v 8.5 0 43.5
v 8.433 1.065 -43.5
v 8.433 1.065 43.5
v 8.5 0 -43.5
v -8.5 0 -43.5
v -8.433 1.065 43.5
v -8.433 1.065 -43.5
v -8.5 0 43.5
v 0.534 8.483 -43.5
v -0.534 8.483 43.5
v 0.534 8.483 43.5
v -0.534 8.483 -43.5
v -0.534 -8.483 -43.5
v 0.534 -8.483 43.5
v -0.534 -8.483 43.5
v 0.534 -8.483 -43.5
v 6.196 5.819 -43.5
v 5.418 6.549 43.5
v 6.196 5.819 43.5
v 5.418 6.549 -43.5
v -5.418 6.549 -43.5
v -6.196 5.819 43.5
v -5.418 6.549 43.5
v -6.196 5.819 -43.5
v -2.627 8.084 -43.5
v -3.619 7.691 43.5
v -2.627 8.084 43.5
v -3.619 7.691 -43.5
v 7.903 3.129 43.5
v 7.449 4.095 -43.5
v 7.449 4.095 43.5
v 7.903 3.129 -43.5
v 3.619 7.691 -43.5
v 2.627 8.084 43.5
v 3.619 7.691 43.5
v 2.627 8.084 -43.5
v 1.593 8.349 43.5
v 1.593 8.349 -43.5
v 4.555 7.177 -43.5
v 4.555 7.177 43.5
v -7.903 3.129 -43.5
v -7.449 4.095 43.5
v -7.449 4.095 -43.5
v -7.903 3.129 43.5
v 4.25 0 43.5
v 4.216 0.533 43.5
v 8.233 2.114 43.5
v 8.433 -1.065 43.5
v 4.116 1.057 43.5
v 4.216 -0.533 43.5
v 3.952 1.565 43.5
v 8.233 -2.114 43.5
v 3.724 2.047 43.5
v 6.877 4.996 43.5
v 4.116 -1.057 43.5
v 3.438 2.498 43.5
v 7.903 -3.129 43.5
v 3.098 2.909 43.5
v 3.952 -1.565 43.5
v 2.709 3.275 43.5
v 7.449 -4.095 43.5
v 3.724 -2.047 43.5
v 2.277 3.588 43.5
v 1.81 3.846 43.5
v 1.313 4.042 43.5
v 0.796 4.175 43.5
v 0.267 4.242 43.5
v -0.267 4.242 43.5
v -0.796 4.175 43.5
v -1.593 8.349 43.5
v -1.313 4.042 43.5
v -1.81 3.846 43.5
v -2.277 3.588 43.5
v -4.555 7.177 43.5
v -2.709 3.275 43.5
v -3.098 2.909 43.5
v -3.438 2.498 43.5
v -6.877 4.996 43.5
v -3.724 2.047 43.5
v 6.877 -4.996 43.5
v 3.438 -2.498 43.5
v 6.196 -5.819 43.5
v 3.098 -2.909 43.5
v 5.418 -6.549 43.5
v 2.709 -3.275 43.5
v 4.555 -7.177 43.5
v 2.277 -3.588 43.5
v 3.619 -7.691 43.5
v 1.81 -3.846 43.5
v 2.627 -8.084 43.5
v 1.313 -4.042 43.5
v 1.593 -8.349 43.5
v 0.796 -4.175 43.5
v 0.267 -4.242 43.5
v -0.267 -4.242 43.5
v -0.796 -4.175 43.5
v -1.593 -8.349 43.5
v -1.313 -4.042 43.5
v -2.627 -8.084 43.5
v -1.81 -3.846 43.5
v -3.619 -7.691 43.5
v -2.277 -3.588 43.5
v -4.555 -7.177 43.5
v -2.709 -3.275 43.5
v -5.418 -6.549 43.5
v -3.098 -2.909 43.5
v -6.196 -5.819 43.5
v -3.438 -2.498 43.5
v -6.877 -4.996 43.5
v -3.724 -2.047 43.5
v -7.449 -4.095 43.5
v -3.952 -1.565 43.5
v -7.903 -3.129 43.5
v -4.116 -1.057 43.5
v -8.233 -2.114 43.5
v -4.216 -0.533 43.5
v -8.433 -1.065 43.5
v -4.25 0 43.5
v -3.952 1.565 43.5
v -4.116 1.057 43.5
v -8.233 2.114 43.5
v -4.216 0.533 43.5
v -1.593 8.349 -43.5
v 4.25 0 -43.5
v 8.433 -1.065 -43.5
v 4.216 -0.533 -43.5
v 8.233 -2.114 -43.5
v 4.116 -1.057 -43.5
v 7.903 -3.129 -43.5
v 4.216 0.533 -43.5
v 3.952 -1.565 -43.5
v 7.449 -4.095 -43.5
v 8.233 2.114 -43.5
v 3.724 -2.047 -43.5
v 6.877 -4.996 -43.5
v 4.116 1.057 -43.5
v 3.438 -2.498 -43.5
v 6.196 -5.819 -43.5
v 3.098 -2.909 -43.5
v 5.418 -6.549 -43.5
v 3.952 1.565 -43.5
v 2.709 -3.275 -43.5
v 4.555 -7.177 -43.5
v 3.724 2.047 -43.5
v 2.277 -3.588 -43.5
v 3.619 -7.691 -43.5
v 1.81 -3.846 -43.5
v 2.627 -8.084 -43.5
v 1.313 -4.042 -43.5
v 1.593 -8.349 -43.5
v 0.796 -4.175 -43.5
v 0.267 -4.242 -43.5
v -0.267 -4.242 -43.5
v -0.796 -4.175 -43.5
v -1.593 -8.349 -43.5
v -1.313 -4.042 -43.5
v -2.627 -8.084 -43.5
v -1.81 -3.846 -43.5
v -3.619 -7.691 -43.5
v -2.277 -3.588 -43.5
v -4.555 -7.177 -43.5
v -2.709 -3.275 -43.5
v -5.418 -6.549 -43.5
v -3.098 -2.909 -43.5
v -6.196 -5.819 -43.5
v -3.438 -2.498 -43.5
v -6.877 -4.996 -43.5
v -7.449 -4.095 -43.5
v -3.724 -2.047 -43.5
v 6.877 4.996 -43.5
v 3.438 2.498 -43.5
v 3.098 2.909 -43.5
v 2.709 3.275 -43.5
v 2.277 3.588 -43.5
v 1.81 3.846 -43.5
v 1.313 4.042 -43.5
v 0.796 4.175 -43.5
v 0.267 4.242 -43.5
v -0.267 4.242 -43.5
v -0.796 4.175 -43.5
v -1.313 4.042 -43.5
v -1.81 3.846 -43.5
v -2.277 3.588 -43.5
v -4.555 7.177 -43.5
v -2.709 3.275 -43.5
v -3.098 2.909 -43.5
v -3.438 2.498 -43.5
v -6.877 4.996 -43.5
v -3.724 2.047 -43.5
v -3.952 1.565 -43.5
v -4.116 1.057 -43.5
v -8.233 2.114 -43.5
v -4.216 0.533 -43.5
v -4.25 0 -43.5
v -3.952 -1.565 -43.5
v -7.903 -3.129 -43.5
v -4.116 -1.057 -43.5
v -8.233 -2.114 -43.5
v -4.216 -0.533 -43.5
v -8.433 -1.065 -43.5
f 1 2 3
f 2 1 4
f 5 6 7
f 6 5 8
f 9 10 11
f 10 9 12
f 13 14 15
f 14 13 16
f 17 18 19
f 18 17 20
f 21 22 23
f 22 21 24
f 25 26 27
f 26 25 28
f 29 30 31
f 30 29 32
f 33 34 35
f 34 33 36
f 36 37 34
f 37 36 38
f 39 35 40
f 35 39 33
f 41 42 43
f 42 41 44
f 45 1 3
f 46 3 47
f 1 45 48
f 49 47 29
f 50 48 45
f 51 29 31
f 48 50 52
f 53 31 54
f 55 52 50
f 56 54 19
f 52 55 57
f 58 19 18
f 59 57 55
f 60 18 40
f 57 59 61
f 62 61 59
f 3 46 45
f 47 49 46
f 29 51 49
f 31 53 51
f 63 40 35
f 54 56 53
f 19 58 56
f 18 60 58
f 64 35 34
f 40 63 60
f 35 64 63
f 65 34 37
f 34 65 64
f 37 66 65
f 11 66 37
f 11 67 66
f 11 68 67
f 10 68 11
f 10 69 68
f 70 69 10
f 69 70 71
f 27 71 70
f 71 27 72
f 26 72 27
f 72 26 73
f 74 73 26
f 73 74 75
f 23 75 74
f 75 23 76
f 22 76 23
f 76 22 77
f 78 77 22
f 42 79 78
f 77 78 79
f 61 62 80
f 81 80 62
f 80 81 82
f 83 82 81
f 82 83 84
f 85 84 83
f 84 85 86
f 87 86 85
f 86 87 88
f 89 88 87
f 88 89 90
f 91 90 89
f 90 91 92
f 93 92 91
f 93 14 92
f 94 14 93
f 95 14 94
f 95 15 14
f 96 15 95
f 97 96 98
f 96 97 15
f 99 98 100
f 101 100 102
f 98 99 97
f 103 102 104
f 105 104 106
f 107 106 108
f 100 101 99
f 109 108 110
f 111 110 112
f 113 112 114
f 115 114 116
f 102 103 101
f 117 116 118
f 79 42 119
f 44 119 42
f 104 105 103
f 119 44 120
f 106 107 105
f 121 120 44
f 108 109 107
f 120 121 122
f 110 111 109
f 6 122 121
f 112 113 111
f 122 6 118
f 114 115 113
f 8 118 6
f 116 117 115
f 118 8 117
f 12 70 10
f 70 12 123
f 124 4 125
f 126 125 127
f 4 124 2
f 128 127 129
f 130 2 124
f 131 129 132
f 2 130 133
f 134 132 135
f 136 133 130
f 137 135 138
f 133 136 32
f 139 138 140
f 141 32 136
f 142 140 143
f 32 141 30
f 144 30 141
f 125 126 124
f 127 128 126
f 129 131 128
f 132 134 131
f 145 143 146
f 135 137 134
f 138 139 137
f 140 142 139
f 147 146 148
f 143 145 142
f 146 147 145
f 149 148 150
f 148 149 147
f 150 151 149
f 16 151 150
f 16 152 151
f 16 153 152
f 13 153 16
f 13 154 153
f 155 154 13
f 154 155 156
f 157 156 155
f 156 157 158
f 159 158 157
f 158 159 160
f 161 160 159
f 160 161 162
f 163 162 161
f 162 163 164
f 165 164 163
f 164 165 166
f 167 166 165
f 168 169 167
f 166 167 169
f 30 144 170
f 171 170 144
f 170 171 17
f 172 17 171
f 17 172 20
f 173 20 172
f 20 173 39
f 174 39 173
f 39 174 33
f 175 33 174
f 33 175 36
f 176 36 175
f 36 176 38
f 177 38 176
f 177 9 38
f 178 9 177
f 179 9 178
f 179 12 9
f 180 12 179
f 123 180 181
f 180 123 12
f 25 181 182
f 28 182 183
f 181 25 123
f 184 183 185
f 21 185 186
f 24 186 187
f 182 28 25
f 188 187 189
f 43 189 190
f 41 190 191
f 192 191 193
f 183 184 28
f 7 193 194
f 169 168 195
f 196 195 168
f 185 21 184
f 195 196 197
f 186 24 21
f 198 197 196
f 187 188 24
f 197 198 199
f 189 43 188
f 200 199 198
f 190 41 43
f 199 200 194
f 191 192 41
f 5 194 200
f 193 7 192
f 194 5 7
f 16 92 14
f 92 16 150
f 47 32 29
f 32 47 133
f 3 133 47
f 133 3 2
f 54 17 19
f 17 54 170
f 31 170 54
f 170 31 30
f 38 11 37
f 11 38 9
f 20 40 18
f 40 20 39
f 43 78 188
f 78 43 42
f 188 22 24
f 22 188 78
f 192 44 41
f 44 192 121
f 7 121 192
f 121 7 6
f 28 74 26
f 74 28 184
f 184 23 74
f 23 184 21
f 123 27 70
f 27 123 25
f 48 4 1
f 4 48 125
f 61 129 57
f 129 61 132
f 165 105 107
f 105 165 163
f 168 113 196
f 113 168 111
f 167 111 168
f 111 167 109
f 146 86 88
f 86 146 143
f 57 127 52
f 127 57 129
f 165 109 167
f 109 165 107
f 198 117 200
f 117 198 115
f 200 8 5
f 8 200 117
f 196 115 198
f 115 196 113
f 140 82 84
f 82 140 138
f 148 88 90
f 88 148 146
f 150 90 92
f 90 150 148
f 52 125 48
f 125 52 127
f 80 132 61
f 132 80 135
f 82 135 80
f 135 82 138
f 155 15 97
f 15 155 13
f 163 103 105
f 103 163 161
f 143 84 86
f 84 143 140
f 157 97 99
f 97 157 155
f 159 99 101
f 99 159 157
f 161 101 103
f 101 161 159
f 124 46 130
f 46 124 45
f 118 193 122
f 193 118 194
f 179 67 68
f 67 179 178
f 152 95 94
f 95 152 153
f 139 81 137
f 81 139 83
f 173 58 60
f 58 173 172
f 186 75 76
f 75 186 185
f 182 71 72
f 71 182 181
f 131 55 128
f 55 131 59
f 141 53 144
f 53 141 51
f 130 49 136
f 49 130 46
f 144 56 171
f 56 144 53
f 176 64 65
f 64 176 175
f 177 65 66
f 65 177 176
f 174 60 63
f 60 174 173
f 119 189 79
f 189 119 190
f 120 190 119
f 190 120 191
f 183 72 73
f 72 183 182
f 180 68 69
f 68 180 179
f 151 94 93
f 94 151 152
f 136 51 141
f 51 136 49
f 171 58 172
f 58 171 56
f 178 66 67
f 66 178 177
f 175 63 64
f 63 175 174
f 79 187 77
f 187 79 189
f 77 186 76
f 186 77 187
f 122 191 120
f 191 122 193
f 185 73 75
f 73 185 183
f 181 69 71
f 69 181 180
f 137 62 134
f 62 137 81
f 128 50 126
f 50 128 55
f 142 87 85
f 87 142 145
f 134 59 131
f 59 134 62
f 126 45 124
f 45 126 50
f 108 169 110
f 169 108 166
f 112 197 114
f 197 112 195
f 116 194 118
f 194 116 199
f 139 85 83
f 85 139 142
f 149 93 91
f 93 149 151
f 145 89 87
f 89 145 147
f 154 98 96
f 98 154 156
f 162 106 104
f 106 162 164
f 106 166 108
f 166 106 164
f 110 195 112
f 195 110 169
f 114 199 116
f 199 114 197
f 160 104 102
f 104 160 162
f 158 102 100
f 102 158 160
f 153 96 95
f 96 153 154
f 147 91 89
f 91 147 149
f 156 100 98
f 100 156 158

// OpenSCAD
$fn = 50;


difference() {
	union() {
		translate(v = [0, 0, -43.5000000000]) {
			cylinder(h = 87, r = 8.5000000000);
		}
	}
	union() {
		translate(v = [0, 0, -100.0000000000]) {
			cylinder(h = 200, r = 4.2500000000);
		}
	}
}
